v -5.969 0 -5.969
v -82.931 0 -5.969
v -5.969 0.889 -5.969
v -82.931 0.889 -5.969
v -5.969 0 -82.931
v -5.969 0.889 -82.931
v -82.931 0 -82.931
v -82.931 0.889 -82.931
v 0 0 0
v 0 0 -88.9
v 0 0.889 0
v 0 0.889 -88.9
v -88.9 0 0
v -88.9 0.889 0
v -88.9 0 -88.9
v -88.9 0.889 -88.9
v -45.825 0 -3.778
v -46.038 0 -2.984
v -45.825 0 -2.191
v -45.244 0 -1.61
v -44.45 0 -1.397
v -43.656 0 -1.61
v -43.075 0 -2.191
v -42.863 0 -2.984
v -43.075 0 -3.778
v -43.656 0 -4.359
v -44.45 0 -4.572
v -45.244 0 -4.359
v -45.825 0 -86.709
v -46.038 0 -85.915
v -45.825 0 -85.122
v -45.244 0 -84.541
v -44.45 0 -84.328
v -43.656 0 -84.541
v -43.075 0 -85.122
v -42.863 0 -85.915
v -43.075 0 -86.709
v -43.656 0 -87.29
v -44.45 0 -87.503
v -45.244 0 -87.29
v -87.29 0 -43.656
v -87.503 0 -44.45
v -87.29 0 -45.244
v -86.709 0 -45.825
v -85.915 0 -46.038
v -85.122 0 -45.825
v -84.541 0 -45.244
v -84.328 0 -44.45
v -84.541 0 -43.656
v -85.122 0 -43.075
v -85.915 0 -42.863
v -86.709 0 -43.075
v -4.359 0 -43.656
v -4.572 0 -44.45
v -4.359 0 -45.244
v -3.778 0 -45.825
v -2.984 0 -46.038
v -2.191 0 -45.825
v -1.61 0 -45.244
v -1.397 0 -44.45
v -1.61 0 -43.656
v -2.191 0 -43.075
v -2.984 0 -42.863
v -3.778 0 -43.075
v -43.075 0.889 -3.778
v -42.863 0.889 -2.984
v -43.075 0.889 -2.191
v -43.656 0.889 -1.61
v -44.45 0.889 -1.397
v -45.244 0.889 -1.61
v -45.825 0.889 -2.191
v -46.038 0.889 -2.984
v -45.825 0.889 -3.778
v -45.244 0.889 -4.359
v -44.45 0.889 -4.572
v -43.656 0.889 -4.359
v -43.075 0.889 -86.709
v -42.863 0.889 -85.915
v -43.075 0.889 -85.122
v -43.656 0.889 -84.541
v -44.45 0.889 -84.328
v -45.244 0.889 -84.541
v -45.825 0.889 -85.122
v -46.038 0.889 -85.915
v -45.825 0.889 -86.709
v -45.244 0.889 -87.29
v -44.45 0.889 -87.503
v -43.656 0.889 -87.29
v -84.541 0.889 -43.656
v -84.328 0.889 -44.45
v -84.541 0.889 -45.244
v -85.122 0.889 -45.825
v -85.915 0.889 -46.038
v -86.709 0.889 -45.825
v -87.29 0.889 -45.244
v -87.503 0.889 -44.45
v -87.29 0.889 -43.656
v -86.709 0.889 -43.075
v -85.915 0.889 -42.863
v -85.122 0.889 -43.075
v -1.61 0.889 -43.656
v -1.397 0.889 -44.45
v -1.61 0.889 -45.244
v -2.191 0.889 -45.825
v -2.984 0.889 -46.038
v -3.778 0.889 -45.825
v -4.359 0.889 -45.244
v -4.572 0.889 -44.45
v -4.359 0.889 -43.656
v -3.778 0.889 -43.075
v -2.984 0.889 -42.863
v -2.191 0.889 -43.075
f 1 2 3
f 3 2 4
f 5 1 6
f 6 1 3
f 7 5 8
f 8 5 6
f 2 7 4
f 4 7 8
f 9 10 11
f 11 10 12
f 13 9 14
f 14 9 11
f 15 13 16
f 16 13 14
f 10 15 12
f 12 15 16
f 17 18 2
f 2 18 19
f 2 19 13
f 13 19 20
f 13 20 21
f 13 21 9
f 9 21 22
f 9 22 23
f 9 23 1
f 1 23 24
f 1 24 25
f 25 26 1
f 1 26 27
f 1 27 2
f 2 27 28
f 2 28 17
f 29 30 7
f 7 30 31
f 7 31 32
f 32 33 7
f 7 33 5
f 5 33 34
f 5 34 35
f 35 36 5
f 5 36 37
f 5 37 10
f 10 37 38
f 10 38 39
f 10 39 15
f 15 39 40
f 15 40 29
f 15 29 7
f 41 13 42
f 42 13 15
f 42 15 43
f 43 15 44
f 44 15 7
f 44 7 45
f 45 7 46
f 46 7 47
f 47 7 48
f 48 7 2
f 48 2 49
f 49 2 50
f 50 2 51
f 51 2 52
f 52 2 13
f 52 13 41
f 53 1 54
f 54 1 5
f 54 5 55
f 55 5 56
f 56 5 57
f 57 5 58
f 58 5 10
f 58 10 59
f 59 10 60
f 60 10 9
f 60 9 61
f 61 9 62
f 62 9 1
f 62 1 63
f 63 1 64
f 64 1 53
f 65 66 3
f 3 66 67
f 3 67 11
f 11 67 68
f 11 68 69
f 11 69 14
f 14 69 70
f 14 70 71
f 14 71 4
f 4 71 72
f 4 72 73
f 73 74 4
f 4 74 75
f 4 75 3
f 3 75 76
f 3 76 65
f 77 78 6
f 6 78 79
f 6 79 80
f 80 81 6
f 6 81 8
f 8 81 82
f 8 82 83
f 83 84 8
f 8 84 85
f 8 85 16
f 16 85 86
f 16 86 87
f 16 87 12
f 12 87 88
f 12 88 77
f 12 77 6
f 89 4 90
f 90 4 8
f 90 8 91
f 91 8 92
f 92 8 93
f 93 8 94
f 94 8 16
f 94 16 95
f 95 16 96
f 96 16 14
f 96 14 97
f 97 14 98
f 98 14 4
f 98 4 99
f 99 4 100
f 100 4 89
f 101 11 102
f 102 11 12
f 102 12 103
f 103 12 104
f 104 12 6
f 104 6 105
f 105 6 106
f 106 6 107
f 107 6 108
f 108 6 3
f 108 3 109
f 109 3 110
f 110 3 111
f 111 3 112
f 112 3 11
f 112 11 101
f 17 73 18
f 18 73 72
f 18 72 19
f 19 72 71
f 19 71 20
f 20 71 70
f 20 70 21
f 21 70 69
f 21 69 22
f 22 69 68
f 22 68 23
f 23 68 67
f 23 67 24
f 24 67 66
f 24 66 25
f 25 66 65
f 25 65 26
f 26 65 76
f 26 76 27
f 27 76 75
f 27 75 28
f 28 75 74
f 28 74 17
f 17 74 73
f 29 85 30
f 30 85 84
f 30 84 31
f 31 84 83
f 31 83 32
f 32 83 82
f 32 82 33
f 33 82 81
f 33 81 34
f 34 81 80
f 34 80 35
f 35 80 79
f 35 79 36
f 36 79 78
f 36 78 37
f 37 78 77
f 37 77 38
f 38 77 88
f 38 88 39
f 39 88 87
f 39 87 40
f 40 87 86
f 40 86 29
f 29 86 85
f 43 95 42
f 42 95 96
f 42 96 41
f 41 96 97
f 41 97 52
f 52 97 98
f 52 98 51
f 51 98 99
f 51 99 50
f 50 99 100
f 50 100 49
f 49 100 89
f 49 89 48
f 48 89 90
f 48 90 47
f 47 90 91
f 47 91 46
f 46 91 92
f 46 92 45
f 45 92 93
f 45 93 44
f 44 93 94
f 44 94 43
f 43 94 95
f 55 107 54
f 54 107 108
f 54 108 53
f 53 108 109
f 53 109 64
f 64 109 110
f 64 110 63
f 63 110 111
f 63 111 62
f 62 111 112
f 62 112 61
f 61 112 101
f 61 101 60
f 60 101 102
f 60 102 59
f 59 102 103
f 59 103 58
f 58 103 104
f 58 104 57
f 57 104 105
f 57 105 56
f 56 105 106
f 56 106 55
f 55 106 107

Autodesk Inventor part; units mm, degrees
ref_plane "YZ Plane" through (0, 0, 0) normal (1, 0, 0) x (0, 1, 0)
ref_plane "XZ Plane" through (0, 0, 0) normal (0, 1, 0) x (-1, 0, 0)
ref_plane "XY Plane" through (0, 0, 0) normal (0, 0, 1) x (1, 0, 0)
sketch "Sketch1" plane through (0, 0, 0) normal (0, 1, 0) x (-1, 0, 0)
  line L0 (0, 0) -> (88.9, 0)
  line L1 (88.9, 0) -> (88.9, -88.9)
  line L2 (88.9, -88.9) -> (0, -88.9)
  line L3 (0, -88.9) -> (0, 0)
  line L4 (82.931, -5.969) -> (5.969, -5.969)
  line L5 (5.969, -5.969) -> (5.969, -82.931)
  line L6 (5.969, -82.931) -> (82.931, -82.931)
  line L7 (82.931, -82.931) -> (82.931, -5.969)
  point P0 (44.45, -5.969)
  dimension "d0" = 88.9
  dimension "d1" = 88.9
  dimension "d2" = 5.969
  dimension "d3" = 5.969
  dimension "d4" = 5.969
  dimension "d5" = 5.969
extrude "Extrusion1" add sketch "Sketch1" along normal blind 0.889
sketch "Sketch2" plane through (0, 0.889, 0) normal (0, 1, 0) x (1, 0, 0)
  circle A0 centre (-85.9155, 44.45) radius 1.5875
  line L0 (-88.9, 88.9) -> (-88.9, 0) projected
  line L1 (0, 88.9) -> (-88.9, 88.9) projected
  circle A1 centre (-2.9845, 44.45) radius 1.5875
  line L2 (-5.969, 82.931) -> (-5.969, 5.969) projected
  circle A2 centre (-44.45, 2.9845) radius 1.5875
  line L3 (-5.969, 5.969) -> (-82.931, 5.969) projected
  circle A3 centre (-44.45, 85.9155) radius 1.5875
  line L4 (-82.931, 82.931) -> (-5.969, 82.931) projected
  point P0 (0, 0)
  dimension "d8" = 3.175
  dimension "d9" = 2.9845
  dimension "d10" = 44.45
  dimension "d11" = 3.175
  dimension "d12" = 2.9845
  dimension "d13" = 3.175
  dimension "d14" = 2.9845
  dimension "d15" = 3.175
  dimension "d16" = 2.9845
extrude "Extrusion2" cut sketch "Sketch2" against normal through all
properties part number "top plate"
